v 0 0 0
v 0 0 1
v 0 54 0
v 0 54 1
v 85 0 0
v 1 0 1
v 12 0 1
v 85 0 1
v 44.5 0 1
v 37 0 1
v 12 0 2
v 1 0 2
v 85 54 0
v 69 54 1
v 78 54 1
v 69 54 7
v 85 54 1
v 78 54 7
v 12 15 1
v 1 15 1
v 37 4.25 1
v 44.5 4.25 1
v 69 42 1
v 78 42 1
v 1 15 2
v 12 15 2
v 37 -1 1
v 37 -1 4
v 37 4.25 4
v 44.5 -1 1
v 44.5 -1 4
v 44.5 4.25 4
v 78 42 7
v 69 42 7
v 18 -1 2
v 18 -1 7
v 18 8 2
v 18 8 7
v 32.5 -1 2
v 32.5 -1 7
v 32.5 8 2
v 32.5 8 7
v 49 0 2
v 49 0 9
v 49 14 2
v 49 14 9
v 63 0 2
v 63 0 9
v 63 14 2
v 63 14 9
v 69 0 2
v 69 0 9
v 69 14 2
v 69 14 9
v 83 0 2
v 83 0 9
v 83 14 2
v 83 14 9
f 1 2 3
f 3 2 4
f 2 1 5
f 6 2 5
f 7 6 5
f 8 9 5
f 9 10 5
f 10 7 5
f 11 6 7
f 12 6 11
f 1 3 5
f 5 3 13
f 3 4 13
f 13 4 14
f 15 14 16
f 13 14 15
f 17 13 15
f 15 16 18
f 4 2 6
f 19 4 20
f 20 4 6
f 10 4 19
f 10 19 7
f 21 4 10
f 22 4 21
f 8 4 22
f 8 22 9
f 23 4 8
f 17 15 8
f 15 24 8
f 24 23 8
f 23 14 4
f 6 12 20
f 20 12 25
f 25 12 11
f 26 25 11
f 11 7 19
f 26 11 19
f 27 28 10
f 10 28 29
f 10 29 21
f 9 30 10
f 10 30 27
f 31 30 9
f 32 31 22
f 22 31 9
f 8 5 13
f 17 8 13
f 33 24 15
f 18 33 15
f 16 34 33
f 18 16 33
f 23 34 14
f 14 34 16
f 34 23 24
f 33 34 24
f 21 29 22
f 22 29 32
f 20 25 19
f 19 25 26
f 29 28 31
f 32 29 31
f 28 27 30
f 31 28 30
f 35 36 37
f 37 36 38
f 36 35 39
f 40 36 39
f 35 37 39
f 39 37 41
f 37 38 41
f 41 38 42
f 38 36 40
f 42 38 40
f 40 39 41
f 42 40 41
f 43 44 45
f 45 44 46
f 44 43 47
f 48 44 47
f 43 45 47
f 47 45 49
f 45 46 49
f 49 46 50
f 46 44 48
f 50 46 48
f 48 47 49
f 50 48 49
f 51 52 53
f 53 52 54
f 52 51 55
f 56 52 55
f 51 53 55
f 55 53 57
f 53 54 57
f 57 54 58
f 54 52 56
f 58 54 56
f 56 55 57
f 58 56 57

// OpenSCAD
/* PCB */
union() {
	cube([85,54,1]);

	translate([1, 0, 1]) {
		cube([11, 15, 1]);
	}

	translate([18, -1, 2]) {
		cube([14.5, 9, 5]);
	}

	translate([37, -1, 1]) {
		cube([7.5, 5.25 , 3]);
	}

	translate([49, 0, 2]) {
		cube([14, 14 , 7]);
	}

	translate([69, 0, 2]) {
		cube([14, 14 , 7]);
	}

	translate([69, 42, 1]) {
		cube([9, 12 , 6]);
	}
}
